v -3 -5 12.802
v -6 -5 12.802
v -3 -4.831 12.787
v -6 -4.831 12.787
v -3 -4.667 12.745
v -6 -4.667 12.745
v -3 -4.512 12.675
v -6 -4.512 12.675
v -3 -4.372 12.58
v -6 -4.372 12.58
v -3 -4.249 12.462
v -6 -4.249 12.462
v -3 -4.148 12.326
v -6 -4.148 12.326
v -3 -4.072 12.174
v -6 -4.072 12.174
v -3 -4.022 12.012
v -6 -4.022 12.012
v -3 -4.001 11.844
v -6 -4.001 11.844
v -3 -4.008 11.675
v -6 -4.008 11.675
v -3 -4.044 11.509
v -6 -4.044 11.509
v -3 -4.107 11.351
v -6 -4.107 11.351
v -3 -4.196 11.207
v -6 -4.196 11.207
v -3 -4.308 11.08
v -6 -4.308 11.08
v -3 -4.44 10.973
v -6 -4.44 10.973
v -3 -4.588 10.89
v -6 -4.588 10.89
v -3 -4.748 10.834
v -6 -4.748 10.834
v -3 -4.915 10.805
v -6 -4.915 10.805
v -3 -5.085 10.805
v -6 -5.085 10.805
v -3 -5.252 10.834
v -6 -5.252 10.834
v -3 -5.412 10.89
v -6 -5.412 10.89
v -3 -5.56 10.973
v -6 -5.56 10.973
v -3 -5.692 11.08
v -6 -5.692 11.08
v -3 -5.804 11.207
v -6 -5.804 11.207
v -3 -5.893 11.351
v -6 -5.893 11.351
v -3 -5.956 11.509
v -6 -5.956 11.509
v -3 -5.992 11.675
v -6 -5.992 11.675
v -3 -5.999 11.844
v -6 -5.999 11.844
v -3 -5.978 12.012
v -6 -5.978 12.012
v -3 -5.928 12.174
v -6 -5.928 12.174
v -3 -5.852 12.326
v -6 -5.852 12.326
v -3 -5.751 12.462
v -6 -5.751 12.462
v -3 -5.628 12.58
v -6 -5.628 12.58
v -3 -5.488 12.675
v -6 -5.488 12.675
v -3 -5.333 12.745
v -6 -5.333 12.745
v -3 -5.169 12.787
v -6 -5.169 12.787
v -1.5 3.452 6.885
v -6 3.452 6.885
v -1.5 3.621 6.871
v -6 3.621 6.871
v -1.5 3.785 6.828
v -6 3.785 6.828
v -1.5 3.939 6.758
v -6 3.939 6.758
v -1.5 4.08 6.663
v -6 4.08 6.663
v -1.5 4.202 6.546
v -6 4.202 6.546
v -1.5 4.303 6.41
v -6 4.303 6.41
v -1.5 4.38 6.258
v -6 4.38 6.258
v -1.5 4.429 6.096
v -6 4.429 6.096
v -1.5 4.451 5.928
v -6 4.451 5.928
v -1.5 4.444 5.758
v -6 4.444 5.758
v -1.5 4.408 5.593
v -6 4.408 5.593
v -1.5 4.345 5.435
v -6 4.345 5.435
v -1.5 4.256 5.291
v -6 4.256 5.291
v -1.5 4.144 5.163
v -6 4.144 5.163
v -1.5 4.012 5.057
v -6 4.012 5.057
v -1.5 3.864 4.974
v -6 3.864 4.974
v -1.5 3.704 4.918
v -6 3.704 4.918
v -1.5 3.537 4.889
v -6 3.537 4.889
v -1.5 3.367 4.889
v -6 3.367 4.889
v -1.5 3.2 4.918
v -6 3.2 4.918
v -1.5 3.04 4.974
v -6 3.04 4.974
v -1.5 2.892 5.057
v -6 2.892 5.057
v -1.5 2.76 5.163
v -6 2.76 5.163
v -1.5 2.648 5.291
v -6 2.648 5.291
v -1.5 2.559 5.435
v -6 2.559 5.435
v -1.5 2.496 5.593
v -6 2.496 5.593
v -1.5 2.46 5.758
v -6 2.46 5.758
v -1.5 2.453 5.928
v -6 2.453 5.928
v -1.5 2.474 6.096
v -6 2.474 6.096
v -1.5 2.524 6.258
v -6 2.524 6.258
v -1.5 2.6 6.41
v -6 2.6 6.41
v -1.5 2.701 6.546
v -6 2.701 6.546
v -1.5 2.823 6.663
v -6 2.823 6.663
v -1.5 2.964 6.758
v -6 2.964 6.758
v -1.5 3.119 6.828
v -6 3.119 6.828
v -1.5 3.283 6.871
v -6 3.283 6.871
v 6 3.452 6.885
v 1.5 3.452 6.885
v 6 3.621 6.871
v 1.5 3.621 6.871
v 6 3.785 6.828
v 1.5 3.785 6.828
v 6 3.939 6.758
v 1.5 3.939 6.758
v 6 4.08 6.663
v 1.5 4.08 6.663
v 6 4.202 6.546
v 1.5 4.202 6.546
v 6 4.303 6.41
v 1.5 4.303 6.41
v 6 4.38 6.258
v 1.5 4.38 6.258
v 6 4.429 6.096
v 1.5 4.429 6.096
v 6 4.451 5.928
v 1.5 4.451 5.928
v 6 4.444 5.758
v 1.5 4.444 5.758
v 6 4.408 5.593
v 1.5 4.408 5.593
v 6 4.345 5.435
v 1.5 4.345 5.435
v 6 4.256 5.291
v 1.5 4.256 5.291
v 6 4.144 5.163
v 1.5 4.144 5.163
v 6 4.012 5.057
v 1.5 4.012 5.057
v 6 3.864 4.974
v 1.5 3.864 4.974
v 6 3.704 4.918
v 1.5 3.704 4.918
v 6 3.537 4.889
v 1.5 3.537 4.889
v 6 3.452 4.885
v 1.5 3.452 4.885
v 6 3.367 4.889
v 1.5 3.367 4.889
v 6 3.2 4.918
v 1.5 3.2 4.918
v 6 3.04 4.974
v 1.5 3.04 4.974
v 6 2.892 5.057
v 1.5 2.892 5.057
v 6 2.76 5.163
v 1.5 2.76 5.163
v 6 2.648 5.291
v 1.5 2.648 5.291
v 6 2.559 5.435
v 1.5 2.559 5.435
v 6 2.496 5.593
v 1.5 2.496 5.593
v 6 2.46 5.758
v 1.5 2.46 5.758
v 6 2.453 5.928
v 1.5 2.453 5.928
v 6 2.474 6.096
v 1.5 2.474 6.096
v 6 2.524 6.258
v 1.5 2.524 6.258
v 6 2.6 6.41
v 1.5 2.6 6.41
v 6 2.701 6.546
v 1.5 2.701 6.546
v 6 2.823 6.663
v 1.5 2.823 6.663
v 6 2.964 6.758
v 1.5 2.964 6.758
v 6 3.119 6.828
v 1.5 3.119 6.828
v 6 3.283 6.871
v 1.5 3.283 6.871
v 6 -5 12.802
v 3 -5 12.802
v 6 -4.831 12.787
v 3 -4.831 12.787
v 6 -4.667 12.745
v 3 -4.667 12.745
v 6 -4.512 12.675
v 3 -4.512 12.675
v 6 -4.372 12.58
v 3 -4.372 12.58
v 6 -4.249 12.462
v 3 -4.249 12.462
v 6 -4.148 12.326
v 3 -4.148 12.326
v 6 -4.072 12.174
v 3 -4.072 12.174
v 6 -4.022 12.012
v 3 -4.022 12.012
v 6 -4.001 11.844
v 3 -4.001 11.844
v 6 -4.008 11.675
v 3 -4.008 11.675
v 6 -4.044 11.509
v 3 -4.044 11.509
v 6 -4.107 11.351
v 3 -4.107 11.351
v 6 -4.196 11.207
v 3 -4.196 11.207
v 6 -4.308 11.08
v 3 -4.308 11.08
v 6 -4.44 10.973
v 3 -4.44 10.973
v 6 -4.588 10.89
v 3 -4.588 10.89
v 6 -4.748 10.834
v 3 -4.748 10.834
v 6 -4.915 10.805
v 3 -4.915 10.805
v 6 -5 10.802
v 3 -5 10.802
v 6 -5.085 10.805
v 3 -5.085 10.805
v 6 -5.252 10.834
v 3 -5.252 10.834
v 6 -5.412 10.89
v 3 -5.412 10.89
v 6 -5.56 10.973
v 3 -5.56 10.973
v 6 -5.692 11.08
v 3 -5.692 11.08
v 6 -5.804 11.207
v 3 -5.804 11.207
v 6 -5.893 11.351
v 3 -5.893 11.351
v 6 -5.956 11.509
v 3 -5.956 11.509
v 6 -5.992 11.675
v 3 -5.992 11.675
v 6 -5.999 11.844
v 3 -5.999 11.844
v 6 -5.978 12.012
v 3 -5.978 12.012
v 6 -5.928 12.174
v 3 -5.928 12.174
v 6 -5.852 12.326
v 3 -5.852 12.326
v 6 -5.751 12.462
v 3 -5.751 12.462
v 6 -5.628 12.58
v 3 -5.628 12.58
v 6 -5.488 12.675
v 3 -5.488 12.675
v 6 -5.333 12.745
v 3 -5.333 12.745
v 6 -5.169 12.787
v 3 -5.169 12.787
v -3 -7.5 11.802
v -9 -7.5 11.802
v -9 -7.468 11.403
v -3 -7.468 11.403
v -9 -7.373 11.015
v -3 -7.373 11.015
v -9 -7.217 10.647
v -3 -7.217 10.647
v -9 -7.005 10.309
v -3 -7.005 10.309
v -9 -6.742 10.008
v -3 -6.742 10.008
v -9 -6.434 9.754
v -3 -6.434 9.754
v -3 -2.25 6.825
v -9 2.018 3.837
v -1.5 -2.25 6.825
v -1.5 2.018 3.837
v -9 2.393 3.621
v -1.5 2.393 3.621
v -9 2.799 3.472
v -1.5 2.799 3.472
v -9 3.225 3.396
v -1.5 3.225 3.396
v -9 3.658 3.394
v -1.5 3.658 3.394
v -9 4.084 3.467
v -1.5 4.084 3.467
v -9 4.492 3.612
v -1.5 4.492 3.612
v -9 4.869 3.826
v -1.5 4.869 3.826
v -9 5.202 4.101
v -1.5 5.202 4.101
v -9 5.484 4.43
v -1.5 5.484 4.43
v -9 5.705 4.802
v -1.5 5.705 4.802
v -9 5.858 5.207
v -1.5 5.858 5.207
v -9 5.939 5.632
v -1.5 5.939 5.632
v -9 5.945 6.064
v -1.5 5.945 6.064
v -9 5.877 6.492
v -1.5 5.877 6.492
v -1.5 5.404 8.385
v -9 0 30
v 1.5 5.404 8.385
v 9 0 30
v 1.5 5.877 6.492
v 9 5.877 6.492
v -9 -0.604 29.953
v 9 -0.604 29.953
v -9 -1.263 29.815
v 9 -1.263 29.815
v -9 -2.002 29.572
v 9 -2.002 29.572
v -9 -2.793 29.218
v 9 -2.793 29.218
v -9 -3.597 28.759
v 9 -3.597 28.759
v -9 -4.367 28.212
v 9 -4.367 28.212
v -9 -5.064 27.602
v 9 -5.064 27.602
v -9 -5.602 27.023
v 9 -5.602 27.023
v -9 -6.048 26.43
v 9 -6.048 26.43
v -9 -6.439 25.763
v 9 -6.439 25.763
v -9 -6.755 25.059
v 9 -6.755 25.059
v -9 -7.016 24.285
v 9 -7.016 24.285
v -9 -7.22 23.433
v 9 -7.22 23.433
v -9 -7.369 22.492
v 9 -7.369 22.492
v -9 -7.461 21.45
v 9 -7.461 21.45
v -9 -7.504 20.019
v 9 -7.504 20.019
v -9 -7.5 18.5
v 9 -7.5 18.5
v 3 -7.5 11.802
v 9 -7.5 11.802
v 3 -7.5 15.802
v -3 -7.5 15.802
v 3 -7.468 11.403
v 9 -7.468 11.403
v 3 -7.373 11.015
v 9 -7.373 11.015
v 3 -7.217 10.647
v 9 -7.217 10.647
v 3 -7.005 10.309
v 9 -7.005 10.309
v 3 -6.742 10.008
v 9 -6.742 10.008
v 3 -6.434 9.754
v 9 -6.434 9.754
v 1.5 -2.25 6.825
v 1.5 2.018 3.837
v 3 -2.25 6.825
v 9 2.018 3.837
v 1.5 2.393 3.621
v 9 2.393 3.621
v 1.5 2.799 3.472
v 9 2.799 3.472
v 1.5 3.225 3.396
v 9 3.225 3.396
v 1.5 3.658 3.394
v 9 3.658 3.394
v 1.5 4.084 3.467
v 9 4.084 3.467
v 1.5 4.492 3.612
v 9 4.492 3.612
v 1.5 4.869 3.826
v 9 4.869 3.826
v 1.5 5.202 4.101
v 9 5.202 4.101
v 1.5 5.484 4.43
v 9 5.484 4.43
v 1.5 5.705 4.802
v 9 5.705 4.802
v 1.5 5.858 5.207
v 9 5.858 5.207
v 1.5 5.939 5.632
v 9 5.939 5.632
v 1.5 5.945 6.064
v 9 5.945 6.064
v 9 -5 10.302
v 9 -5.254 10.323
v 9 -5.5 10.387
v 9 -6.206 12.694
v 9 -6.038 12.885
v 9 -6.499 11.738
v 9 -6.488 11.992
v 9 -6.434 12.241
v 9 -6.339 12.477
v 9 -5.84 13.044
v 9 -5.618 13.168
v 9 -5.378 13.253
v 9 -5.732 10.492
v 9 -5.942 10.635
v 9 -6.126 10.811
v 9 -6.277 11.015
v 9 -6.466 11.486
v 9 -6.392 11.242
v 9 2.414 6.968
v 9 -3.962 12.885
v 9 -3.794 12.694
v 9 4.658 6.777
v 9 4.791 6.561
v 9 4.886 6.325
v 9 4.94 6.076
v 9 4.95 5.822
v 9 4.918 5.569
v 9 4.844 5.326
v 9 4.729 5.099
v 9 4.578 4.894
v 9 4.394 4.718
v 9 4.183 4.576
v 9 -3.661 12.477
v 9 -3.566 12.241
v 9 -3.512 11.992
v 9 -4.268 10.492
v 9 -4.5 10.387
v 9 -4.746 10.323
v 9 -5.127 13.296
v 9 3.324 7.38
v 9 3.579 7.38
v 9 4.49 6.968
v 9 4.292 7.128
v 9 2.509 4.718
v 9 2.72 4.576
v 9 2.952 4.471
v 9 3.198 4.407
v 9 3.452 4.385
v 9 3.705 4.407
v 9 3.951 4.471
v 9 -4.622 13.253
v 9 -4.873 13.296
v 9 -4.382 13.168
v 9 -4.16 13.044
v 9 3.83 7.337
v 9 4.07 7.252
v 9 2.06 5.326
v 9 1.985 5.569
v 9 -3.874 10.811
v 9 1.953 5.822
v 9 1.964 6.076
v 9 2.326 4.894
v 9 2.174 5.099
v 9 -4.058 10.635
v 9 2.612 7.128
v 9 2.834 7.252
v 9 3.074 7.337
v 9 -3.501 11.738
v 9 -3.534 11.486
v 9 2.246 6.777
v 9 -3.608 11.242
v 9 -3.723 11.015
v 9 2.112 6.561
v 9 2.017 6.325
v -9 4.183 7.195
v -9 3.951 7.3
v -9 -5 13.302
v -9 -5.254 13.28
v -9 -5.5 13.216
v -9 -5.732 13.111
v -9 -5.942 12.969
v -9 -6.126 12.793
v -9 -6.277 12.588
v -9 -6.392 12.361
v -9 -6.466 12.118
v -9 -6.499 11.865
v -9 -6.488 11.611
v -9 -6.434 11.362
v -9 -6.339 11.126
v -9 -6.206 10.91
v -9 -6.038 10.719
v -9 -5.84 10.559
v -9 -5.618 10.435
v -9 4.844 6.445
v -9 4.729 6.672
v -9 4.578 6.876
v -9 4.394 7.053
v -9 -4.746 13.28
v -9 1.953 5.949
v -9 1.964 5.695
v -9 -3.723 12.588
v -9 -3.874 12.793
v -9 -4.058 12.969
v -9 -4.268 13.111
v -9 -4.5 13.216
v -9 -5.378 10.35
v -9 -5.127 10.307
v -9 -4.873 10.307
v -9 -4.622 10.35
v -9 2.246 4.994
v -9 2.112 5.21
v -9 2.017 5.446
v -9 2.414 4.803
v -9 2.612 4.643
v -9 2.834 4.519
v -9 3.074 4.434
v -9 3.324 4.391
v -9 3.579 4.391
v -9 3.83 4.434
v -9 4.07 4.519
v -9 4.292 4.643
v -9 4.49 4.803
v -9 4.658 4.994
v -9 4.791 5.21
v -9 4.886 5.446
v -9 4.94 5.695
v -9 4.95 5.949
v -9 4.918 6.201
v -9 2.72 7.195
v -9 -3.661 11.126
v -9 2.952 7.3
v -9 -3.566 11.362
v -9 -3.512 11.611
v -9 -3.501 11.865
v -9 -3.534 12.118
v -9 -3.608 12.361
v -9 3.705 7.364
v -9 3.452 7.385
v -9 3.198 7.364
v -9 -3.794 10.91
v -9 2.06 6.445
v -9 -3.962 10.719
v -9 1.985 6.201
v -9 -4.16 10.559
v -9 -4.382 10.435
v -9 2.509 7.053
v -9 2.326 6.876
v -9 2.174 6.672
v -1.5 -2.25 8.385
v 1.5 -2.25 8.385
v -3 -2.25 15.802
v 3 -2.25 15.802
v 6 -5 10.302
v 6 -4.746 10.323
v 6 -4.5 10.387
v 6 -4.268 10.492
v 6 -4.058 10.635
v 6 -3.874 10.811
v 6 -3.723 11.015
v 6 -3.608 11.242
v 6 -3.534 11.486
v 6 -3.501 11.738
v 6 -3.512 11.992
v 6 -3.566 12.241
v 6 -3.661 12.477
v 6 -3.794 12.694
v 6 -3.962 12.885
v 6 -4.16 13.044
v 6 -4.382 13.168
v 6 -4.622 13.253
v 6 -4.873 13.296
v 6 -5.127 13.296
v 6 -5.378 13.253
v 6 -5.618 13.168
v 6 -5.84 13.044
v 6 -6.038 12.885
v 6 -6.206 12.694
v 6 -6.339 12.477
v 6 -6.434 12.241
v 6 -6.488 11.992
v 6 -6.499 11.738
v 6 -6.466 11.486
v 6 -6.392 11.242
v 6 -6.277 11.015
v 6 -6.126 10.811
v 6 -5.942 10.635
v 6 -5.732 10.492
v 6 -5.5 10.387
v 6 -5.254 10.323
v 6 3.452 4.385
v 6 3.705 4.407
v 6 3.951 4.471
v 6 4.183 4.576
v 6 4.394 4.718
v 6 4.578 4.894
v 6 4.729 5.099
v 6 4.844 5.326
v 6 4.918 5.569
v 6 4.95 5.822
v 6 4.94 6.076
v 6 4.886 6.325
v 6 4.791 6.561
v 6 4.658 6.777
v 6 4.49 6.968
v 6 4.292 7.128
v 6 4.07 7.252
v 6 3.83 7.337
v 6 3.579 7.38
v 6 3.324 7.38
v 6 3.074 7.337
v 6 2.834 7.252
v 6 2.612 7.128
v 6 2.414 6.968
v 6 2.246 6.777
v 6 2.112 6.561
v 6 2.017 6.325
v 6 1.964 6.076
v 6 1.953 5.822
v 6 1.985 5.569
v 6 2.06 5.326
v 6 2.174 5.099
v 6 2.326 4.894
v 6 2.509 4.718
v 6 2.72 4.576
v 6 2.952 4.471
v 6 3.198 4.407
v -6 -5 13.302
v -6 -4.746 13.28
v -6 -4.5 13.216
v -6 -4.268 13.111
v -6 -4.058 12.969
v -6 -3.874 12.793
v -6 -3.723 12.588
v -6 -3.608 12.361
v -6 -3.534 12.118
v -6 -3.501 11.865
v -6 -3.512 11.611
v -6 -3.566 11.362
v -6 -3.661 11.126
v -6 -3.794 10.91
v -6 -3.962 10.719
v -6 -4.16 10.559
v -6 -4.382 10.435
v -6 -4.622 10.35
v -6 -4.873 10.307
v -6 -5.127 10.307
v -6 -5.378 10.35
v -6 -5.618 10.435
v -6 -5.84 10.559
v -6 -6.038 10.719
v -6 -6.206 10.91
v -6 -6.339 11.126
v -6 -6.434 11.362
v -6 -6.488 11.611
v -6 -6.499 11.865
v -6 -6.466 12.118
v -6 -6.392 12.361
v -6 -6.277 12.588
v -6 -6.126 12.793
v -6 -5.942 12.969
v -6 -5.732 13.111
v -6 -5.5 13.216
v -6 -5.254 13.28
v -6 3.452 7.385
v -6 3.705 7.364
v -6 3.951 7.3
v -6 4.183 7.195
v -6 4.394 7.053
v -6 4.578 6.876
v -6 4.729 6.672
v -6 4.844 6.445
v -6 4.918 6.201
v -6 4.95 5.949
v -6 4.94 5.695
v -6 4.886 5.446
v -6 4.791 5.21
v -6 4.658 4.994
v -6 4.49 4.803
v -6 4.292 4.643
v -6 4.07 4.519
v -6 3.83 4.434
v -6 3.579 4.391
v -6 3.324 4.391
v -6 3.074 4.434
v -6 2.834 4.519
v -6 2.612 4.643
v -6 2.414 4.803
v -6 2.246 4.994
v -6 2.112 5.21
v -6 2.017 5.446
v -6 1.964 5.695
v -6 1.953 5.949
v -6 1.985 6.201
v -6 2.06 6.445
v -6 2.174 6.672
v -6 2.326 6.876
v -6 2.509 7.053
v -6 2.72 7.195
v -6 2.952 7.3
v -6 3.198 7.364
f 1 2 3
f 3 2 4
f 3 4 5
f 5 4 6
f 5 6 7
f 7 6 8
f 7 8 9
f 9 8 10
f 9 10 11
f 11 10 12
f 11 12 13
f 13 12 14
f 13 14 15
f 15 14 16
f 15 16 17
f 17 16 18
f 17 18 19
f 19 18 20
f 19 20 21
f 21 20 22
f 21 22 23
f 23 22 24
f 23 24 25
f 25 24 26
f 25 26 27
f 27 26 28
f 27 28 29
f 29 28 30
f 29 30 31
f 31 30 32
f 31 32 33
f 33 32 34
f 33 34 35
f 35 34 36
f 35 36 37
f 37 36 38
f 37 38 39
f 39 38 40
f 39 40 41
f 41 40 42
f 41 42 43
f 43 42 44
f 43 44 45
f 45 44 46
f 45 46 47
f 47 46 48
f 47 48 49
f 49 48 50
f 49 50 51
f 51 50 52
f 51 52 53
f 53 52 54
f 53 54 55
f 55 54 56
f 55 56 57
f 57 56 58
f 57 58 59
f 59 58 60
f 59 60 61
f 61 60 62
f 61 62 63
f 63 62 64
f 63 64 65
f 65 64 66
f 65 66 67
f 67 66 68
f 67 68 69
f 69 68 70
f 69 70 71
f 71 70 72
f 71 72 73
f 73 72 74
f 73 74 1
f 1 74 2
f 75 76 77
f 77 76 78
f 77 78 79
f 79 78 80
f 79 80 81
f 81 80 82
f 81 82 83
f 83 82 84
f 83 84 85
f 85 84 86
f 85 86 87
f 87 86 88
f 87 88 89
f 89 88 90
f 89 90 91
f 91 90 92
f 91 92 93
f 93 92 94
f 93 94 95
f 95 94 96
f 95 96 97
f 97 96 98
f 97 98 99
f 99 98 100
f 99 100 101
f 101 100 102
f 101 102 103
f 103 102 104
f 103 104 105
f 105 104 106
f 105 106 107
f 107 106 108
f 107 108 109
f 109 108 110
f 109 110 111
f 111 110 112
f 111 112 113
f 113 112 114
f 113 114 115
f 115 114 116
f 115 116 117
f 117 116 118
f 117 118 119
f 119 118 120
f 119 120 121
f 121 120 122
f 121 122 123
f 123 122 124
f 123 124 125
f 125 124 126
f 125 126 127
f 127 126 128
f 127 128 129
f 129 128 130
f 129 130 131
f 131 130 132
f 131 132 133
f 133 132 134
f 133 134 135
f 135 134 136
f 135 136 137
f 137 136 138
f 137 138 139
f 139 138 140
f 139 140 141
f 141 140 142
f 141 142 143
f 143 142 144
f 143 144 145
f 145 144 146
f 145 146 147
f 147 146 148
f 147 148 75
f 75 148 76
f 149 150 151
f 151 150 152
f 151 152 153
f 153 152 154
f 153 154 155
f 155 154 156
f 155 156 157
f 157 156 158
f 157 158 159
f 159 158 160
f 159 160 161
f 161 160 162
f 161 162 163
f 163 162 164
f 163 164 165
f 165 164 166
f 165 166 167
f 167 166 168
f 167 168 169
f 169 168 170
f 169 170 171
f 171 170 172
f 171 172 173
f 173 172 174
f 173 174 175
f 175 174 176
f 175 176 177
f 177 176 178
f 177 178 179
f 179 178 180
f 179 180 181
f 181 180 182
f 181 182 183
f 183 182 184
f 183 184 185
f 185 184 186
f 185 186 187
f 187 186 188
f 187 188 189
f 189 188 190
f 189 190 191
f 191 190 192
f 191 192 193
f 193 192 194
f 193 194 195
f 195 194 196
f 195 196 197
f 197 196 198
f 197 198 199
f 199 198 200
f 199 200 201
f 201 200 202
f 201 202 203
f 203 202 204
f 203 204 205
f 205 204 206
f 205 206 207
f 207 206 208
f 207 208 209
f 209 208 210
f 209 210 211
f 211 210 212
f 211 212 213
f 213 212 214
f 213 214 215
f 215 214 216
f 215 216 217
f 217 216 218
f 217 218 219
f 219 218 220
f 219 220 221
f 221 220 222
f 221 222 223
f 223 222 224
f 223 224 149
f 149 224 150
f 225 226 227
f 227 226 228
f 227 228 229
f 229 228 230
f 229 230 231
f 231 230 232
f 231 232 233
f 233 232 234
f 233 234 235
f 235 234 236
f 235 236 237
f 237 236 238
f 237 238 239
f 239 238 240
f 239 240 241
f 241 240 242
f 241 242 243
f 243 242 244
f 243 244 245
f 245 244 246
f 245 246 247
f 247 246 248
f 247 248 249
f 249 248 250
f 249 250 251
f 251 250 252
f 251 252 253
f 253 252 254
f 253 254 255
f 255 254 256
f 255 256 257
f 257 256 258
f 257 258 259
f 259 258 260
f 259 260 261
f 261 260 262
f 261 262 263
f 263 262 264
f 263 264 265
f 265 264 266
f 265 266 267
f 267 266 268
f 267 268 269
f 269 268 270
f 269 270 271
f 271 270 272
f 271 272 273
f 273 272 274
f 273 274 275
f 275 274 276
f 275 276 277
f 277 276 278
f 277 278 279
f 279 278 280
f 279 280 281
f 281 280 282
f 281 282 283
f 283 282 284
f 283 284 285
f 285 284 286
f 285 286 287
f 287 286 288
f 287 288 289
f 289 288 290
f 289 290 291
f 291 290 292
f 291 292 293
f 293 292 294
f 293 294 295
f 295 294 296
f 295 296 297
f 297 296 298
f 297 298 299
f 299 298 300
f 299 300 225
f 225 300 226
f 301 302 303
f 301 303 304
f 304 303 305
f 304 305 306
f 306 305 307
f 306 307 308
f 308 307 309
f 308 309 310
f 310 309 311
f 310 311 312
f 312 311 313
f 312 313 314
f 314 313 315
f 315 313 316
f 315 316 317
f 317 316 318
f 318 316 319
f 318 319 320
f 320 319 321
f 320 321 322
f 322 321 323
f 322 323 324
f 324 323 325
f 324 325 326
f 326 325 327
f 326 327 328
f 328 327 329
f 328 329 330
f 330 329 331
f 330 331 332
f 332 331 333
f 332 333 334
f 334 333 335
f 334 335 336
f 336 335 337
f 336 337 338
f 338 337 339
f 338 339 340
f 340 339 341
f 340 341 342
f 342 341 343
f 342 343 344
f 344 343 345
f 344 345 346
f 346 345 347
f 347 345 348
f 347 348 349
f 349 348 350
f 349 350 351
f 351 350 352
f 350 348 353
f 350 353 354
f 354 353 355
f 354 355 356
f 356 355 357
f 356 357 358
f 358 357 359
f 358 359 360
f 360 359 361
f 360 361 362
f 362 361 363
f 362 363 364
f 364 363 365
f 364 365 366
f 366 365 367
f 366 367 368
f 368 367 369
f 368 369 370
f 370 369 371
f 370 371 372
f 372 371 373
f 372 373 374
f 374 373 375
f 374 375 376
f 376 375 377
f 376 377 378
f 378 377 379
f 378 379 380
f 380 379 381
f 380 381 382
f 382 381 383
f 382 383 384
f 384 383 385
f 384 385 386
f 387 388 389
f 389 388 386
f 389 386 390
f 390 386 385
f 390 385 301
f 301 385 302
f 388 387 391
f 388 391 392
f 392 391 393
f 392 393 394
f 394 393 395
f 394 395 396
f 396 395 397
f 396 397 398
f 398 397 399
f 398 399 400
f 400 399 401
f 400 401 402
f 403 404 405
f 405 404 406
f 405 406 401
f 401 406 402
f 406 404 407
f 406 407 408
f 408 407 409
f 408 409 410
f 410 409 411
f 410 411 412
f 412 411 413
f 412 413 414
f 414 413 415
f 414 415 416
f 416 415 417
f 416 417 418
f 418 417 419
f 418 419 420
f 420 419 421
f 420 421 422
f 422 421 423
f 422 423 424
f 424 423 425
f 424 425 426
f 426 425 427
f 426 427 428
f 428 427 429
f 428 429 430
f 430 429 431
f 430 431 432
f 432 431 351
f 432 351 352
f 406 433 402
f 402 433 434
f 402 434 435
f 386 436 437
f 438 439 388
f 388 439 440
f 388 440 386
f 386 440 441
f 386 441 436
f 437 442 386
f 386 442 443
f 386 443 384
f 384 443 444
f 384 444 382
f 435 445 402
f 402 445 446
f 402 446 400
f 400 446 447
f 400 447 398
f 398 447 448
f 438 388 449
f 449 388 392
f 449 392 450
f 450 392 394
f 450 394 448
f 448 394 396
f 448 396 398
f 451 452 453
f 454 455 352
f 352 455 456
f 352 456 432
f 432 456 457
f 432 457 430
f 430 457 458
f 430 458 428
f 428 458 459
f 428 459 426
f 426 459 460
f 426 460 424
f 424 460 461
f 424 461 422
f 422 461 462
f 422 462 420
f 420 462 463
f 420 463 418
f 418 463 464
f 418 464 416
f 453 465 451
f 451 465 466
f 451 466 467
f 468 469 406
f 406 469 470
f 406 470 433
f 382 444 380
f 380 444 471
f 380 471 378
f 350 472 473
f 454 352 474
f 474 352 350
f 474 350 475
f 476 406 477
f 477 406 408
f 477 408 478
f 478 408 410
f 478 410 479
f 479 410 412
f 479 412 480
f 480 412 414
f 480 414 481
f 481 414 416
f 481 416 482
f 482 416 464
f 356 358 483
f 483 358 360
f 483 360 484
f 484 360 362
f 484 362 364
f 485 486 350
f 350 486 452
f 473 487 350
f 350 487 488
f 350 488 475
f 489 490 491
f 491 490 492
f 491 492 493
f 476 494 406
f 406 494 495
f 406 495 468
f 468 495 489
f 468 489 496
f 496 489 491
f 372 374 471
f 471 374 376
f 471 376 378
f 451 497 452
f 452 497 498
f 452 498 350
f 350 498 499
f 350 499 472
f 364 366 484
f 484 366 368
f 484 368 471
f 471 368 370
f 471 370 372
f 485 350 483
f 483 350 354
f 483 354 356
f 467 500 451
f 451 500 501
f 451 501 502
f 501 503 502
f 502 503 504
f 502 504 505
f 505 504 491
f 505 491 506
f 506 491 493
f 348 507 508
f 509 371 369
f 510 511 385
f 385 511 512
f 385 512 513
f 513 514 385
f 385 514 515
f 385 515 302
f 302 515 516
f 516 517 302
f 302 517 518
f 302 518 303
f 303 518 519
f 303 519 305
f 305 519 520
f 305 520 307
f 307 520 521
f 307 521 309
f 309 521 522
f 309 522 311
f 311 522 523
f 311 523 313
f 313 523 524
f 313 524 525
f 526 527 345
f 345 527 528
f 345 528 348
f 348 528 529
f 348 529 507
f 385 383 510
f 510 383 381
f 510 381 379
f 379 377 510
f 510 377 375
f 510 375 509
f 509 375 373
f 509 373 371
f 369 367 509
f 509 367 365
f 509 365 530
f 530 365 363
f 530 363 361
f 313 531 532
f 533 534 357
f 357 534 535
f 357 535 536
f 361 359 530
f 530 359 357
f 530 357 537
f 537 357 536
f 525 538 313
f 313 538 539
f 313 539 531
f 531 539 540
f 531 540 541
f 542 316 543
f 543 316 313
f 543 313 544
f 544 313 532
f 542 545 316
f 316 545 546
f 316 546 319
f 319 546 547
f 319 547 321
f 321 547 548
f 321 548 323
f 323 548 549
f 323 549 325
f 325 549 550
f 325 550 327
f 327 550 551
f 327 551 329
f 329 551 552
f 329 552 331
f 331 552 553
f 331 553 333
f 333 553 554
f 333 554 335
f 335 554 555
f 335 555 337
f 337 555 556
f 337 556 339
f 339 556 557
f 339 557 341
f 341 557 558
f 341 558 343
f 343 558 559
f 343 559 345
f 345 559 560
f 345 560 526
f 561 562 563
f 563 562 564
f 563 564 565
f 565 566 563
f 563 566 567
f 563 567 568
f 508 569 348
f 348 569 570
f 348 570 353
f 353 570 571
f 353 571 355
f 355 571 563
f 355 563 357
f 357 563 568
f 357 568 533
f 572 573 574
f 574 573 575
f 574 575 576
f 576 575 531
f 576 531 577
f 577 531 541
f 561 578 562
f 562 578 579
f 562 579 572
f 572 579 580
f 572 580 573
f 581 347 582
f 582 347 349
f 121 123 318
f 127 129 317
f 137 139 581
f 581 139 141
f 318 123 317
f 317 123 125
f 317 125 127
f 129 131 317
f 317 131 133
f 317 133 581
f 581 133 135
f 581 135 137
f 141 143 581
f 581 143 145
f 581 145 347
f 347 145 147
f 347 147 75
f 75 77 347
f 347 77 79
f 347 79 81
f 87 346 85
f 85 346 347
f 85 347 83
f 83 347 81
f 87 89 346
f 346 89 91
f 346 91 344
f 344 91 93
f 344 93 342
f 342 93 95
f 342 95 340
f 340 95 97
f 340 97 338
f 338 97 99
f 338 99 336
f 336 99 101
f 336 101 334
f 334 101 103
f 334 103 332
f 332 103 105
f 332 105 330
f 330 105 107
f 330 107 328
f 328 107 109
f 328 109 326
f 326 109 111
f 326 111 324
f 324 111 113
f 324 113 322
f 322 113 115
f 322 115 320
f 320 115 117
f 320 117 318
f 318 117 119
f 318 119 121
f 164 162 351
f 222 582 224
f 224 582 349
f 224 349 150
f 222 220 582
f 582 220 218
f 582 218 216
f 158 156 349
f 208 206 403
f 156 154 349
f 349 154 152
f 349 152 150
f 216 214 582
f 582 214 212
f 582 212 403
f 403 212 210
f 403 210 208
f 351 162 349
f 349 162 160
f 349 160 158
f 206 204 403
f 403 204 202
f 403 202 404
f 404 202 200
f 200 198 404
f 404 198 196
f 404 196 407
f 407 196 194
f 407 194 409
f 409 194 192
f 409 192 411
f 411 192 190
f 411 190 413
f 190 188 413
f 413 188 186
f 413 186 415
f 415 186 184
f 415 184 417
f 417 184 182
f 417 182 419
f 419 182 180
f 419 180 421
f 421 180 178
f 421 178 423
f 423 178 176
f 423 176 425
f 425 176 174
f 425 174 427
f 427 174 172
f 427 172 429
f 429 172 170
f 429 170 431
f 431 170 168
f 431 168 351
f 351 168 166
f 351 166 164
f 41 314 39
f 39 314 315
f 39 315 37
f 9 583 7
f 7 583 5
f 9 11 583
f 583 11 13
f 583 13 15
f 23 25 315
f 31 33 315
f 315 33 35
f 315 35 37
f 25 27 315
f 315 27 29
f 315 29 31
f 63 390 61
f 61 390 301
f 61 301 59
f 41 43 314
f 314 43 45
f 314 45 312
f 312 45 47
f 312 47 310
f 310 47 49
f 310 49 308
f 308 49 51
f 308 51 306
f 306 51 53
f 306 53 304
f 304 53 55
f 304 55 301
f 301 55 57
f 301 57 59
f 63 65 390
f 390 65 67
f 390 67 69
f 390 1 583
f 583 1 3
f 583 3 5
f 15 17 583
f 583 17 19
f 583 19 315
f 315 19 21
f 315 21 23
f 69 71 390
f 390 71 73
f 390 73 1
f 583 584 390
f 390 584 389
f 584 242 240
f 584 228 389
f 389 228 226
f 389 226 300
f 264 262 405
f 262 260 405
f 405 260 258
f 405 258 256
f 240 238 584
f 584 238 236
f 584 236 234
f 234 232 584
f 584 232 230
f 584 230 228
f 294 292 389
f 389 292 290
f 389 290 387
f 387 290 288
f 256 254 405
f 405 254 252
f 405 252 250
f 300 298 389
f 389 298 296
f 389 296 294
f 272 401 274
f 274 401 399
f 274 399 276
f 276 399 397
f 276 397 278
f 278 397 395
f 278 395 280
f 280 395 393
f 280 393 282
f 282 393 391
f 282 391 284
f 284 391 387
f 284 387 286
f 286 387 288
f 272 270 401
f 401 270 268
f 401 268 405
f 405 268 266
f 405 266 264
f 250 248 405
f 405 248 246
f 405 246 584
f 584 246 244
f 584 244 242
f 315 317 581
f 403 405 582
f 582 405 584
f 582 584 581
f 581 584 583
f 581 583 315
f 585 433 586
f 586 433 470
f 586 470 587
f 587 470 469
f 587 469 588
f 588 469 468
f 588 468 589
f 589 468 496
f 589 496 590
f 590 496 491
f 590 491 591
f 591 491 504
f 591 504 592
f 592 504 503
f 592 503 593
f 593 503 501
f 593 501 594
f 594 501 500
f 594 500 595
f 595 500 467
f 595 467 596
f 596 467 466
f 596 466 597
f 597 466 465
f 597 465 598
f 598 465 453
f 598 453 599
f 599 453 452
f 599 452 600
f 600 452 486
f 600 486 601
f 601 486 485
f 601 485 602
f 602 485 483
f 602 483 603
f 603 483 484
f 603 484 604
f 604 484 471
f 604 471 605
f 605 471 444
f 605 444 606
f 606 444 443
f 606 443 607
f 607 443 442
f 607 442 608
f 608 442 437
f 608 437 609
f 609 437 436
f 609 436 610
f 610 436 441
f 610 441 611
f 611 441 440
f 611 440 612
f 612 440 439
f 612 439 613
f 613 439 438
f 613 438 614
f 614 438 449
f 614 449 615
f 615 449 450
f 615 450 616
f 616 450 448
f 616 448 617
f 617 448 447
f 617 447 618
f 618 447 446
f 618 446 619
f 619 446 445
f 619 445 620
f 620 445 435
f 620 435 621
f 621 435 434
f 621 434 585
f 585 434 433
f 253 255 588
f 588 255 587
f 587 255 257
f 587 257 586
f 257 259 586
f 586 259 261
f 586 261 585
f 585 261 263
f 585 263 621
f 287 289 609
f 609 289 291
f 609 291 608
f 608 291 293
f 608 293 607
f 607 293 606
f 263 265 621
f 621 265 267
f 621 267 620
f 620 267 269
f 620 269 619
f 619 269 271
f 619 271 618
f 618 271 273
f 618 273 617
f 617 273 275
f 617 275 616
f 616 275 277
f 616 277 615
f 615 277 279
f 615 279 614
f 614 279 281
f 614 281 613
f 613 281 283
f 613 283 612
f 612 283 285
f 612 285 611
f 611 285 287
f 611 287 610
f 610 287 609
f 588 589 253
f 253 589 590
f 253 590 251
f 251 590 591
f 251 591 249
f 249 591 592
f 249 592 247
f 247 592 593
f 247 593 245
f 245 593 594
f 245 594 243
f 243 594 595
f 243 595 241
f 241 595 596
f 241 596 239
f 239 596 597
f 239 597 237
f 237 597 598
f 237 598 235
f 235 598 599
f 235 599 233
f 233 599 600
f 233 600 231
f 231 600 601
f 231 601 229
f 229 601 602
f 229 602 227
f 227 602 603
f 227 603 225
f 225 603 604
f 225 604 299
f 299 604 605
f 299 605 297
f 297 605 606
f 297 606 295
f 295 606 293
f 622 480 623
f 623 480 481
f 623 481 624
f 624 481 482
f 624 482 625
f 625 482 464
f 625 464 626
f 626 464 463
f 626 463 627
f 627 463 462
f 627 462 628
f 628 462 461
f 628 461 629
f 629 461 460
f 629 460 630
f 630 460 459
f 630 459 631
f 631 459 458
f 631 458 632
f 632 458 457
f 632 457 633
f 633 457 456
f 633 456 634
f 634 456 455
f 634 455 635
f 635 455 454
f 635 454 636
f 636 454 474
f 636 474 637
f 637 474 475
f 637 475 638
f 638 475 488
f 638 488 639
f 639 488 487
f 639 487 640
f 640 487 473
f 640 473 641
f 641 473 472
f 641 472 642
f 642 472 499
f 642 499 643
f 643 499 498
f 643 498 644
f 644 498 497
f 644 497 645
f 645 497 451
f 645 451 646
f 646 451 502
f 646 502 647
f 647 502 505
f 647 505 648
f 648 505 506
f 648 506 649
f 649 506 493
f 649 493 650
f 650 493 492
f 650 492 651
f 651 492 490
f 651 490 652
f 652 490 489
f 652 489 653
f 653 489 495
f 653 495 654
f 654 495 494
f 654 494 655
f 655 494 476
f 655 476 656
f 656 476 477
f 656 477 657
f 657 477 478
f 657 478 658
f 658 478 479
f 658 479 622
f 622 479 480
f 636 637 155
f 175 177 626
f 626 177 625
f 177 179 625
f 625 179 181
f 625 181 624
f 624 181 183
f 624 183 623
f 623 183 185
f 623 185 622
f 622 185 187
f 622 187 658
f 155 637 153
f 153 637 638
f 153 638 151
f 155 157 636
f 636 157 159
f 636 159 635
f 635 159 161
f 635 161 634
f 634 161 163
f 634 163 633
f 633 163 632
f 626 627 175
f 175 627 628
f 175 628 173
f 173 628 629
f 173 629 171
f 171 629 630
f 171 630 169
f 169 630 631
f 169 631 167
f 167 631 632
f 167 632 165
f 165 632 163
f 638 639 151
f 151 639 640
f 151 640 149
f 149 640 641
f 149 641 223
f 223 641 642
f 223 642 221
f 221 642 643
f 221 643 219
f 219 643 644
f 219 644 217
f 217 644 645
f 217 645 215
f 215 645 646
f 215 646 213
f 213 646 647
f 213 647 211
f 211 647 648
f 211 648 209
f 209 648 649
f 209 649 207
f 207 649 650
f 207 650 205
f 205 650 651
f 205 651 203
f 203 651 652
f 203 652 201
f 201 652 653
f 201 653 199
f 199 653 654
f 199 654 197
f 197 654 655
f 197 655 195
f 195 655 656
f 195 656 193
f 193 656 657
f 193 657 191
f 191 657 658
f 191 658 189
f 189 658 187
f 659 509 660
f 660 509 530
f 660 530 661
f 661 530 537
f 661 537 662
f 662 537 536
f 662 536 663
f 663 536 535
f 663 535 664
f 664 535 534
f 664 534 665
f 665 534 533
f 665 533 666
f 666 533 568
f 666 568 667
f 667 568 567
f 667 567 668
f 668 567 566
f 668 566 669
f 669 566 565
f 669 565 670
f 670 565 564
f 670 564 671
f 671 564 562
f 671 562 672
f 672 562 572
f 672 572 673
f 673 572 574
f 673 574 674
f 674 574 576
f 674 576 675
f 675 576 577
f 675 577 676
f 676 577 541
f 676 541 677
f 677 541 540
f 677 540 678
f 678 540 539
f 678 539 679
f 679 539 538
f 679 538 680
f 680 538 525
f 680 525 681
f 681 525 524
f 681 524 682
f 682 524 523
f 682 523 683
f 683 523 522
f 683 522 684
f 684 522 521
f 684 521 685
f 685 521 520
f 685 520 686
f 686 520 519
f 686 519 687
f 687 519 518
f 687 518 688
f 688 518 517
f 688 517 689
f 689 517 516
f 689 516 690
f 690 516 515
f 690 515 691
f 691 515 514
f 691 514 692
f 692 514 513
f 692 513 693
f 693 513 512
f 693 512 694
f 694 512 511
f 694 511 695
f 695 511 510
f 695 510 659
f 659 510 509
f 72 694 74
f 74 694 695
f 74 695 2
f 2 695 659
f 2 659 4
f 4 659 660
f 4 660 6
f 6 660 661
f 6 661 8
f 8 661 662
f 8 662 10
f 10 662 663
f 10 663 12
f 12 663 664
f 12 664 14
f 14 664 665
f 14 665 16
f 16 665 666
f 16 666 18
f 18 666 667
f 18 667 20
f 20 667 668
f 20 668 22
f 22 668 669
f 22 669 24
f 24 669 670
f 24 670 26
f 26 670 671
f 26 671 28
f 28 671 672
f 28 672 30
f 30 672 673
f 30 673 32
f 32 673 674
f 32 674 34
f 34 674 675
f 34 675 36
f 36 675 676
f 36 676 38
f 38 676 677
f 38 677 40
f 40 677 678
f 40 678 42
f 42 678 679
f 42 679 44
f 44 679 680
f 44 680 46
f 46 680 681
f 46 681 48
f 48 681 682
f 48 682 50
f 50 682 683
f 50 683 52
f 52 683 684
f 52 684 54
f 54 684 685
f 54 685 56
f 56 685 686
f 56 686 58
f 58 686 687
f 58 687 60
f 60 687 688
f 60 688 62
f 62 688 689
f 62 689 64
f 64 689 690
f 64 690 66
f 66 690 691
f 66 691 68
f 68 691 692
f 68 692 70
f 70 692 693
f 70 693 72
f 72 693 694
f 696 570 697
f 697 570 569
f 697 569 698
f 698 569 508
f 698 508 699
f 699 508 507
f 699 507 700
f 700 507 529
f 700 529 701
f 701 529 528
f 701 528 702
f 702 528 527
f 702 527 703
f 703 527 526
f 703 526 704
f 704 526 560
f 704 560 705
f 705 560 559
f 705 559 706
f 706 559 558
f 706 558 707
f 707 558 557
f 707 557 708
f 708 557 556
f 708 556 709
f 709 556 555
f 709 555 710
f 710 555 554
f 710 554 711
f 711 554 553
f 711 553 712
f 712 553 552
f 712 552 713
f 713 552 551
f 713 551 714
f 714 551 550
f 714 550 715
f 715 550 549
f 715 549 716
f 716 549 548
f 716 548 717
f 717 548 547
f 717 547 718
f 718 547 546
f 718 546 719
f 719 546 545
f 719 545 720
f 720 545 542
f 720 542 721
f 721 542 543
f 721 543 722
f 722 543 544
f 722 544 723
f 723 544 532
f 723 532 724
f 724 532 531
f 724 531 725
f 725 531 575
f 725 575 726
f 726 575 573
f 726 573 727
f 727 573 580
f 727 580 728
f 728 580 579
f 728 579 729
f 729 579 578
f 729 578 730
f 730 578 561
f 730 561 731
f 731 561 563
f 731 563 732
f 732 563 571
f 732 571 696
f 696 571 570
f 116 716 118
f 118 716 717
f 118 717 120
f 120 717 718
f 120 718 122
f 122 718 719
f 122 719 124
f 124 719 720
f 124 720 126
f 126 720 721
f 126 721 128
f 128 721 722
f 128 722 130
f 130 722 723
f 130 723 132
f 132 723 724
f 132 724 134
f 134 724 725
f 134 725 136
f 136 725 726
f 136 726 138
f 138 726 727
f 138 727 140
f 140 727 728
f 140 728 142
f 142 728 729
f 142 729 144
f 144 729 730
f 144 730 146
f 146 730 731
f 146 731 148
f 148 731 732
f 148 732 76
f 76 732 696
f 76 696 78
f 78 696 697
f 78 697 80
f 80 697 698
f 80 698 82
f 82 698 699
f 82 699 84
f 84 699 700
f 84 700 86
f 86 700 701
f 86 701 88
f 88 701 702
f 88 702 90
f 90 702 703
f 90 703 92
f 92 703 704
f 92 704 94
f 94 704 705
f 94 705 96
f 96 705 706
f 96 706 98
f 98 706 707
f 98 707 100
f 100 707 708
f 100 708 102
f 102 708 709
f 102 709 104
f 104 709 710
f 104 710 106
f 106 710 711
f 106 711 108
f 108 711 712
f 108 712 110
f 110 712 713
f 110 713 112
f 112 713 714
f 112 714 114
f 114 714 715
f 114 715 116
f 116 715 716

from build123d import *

# Parameters (mm, degrees)
SKETCH2_R           = 1
BOSS_EXTRUDE1_DEPTH = 9
SKETCH4_W           = 3
SKETCH4_H           = 5
CUT_EXTRUDE1_DEPTH  = 15
SKETCH5_W           = 6
SKETCH5_H           = 10
CUT_EXTRUDE3_DEPTH  = 5.25
SKETCH6_R           = 1.5
CUT_EXTRUDE4_DEPTH  = 3
SKETCH7_R           = 1.5
CUT_EXTRUDE5_DEPTH  = 3


with BuildPart() as part:
    # Sketch2 → Boss-Extrude1 (new body, symmetric)
    with BuildSketch(Plane(origin=(0, 0, 0), x_dir=(0, 0, -1), z_dir=(1, 0, 0))):
        with BuildLine():
            Line((-6.491790717, 5.877052321), (-30, 0))
            add(Edge.make_bspline(
                [(-30, 0), (-30, -1.825107758), (-26.893202648, -7.805962947), (-20.772810337, -7.5), (-18.5, -7.5)],
                knots=[0, 0, 0, 0, 0.460452824, 1, 1, 1, 1], degree=3))
            Line((-18.5, -7.5), (-11.801638904, -7.5))
            ThreePointArc((-11.801638904, -7.5), (-10.647112952, -7.217446691), (-9.753559103, -6.433655861))
            Line((-9.753559103, -6.433655861), (-3.837371853, 2.018040209))
            ThreePointArc((-3.837371853, 2.018040209), (-3.825682806, 4.868506676), (-6.491790717, 5.877052321))
        make_face()
        with Locations((-11.801638904, -5)):
            Circle(SKETCH2_R, mode=Mode.SUBTRACT)
        with Locations((-5.885451655, 3.45169607)):
            Circle(SKETCH2_R, mode=Mode.SUBTRACT)
    extrude(amount=BOSS_EXTRUDE1_DEPTH, both=True)

    # Sketch4 → Cut-Extrude1 (cut)
    with BuildSketch(Plane(origin=(0, 5.95169607, 0), x_dir=(1, 0, 0), z_dir=(0, 1, 0))):
        with Locations((0, -5.885451655)):
            Rectangle(SKETCH4_W, SKETCH4_H)
    extrude(amount=-CUT_EXTRUDE1_DEPTH, mode=Mode.SUBTRACT)

    # Sketch5 → Cut-Extrude3 (cut)
    with BuildSketch(Plane.XZ.offset(7.5)):
        with Locations((0, 10.801638904)):
            Rectangle(SKETCH5_W, SKETCH5_H)
    extrude(amount=-CUT_EXTRUDE3_DEPTH, mode=Mode.SUBTRACT)

    # Sketch6 → Cut-Extrude4 (cut)
    with BuildSketch(Plane(origin=(9, 0, 0), x_dir=(0, 0, -1), z_dir=(1, 0, 0))):
        with Locations((-5.885451655, 3.45169607)):
            Circle(SKETCH6_R)
        with Locations((-11.801638904, -5)):
            Circle(SKETCH6_R)
    extrude(amount=-CUT_EXTRUDE4_DEPTH, mode=Mode.SUBTRACT)

    # Sketch7 → Cut-Extrude5 (cut)
    with BuildSketch(Plane.ZY.offset(9)):
        with Locations((5.885451655, 3.45169607)):
            Circle(SKETCH7_R)
        with Locations((11.801638904, -5)):
            Circle(SKETCH7_R)
    extrude(amount=-CUT_EXTRUDE5_DEPTH, mode=Mode.SUBTRACT)


solid = part.part
